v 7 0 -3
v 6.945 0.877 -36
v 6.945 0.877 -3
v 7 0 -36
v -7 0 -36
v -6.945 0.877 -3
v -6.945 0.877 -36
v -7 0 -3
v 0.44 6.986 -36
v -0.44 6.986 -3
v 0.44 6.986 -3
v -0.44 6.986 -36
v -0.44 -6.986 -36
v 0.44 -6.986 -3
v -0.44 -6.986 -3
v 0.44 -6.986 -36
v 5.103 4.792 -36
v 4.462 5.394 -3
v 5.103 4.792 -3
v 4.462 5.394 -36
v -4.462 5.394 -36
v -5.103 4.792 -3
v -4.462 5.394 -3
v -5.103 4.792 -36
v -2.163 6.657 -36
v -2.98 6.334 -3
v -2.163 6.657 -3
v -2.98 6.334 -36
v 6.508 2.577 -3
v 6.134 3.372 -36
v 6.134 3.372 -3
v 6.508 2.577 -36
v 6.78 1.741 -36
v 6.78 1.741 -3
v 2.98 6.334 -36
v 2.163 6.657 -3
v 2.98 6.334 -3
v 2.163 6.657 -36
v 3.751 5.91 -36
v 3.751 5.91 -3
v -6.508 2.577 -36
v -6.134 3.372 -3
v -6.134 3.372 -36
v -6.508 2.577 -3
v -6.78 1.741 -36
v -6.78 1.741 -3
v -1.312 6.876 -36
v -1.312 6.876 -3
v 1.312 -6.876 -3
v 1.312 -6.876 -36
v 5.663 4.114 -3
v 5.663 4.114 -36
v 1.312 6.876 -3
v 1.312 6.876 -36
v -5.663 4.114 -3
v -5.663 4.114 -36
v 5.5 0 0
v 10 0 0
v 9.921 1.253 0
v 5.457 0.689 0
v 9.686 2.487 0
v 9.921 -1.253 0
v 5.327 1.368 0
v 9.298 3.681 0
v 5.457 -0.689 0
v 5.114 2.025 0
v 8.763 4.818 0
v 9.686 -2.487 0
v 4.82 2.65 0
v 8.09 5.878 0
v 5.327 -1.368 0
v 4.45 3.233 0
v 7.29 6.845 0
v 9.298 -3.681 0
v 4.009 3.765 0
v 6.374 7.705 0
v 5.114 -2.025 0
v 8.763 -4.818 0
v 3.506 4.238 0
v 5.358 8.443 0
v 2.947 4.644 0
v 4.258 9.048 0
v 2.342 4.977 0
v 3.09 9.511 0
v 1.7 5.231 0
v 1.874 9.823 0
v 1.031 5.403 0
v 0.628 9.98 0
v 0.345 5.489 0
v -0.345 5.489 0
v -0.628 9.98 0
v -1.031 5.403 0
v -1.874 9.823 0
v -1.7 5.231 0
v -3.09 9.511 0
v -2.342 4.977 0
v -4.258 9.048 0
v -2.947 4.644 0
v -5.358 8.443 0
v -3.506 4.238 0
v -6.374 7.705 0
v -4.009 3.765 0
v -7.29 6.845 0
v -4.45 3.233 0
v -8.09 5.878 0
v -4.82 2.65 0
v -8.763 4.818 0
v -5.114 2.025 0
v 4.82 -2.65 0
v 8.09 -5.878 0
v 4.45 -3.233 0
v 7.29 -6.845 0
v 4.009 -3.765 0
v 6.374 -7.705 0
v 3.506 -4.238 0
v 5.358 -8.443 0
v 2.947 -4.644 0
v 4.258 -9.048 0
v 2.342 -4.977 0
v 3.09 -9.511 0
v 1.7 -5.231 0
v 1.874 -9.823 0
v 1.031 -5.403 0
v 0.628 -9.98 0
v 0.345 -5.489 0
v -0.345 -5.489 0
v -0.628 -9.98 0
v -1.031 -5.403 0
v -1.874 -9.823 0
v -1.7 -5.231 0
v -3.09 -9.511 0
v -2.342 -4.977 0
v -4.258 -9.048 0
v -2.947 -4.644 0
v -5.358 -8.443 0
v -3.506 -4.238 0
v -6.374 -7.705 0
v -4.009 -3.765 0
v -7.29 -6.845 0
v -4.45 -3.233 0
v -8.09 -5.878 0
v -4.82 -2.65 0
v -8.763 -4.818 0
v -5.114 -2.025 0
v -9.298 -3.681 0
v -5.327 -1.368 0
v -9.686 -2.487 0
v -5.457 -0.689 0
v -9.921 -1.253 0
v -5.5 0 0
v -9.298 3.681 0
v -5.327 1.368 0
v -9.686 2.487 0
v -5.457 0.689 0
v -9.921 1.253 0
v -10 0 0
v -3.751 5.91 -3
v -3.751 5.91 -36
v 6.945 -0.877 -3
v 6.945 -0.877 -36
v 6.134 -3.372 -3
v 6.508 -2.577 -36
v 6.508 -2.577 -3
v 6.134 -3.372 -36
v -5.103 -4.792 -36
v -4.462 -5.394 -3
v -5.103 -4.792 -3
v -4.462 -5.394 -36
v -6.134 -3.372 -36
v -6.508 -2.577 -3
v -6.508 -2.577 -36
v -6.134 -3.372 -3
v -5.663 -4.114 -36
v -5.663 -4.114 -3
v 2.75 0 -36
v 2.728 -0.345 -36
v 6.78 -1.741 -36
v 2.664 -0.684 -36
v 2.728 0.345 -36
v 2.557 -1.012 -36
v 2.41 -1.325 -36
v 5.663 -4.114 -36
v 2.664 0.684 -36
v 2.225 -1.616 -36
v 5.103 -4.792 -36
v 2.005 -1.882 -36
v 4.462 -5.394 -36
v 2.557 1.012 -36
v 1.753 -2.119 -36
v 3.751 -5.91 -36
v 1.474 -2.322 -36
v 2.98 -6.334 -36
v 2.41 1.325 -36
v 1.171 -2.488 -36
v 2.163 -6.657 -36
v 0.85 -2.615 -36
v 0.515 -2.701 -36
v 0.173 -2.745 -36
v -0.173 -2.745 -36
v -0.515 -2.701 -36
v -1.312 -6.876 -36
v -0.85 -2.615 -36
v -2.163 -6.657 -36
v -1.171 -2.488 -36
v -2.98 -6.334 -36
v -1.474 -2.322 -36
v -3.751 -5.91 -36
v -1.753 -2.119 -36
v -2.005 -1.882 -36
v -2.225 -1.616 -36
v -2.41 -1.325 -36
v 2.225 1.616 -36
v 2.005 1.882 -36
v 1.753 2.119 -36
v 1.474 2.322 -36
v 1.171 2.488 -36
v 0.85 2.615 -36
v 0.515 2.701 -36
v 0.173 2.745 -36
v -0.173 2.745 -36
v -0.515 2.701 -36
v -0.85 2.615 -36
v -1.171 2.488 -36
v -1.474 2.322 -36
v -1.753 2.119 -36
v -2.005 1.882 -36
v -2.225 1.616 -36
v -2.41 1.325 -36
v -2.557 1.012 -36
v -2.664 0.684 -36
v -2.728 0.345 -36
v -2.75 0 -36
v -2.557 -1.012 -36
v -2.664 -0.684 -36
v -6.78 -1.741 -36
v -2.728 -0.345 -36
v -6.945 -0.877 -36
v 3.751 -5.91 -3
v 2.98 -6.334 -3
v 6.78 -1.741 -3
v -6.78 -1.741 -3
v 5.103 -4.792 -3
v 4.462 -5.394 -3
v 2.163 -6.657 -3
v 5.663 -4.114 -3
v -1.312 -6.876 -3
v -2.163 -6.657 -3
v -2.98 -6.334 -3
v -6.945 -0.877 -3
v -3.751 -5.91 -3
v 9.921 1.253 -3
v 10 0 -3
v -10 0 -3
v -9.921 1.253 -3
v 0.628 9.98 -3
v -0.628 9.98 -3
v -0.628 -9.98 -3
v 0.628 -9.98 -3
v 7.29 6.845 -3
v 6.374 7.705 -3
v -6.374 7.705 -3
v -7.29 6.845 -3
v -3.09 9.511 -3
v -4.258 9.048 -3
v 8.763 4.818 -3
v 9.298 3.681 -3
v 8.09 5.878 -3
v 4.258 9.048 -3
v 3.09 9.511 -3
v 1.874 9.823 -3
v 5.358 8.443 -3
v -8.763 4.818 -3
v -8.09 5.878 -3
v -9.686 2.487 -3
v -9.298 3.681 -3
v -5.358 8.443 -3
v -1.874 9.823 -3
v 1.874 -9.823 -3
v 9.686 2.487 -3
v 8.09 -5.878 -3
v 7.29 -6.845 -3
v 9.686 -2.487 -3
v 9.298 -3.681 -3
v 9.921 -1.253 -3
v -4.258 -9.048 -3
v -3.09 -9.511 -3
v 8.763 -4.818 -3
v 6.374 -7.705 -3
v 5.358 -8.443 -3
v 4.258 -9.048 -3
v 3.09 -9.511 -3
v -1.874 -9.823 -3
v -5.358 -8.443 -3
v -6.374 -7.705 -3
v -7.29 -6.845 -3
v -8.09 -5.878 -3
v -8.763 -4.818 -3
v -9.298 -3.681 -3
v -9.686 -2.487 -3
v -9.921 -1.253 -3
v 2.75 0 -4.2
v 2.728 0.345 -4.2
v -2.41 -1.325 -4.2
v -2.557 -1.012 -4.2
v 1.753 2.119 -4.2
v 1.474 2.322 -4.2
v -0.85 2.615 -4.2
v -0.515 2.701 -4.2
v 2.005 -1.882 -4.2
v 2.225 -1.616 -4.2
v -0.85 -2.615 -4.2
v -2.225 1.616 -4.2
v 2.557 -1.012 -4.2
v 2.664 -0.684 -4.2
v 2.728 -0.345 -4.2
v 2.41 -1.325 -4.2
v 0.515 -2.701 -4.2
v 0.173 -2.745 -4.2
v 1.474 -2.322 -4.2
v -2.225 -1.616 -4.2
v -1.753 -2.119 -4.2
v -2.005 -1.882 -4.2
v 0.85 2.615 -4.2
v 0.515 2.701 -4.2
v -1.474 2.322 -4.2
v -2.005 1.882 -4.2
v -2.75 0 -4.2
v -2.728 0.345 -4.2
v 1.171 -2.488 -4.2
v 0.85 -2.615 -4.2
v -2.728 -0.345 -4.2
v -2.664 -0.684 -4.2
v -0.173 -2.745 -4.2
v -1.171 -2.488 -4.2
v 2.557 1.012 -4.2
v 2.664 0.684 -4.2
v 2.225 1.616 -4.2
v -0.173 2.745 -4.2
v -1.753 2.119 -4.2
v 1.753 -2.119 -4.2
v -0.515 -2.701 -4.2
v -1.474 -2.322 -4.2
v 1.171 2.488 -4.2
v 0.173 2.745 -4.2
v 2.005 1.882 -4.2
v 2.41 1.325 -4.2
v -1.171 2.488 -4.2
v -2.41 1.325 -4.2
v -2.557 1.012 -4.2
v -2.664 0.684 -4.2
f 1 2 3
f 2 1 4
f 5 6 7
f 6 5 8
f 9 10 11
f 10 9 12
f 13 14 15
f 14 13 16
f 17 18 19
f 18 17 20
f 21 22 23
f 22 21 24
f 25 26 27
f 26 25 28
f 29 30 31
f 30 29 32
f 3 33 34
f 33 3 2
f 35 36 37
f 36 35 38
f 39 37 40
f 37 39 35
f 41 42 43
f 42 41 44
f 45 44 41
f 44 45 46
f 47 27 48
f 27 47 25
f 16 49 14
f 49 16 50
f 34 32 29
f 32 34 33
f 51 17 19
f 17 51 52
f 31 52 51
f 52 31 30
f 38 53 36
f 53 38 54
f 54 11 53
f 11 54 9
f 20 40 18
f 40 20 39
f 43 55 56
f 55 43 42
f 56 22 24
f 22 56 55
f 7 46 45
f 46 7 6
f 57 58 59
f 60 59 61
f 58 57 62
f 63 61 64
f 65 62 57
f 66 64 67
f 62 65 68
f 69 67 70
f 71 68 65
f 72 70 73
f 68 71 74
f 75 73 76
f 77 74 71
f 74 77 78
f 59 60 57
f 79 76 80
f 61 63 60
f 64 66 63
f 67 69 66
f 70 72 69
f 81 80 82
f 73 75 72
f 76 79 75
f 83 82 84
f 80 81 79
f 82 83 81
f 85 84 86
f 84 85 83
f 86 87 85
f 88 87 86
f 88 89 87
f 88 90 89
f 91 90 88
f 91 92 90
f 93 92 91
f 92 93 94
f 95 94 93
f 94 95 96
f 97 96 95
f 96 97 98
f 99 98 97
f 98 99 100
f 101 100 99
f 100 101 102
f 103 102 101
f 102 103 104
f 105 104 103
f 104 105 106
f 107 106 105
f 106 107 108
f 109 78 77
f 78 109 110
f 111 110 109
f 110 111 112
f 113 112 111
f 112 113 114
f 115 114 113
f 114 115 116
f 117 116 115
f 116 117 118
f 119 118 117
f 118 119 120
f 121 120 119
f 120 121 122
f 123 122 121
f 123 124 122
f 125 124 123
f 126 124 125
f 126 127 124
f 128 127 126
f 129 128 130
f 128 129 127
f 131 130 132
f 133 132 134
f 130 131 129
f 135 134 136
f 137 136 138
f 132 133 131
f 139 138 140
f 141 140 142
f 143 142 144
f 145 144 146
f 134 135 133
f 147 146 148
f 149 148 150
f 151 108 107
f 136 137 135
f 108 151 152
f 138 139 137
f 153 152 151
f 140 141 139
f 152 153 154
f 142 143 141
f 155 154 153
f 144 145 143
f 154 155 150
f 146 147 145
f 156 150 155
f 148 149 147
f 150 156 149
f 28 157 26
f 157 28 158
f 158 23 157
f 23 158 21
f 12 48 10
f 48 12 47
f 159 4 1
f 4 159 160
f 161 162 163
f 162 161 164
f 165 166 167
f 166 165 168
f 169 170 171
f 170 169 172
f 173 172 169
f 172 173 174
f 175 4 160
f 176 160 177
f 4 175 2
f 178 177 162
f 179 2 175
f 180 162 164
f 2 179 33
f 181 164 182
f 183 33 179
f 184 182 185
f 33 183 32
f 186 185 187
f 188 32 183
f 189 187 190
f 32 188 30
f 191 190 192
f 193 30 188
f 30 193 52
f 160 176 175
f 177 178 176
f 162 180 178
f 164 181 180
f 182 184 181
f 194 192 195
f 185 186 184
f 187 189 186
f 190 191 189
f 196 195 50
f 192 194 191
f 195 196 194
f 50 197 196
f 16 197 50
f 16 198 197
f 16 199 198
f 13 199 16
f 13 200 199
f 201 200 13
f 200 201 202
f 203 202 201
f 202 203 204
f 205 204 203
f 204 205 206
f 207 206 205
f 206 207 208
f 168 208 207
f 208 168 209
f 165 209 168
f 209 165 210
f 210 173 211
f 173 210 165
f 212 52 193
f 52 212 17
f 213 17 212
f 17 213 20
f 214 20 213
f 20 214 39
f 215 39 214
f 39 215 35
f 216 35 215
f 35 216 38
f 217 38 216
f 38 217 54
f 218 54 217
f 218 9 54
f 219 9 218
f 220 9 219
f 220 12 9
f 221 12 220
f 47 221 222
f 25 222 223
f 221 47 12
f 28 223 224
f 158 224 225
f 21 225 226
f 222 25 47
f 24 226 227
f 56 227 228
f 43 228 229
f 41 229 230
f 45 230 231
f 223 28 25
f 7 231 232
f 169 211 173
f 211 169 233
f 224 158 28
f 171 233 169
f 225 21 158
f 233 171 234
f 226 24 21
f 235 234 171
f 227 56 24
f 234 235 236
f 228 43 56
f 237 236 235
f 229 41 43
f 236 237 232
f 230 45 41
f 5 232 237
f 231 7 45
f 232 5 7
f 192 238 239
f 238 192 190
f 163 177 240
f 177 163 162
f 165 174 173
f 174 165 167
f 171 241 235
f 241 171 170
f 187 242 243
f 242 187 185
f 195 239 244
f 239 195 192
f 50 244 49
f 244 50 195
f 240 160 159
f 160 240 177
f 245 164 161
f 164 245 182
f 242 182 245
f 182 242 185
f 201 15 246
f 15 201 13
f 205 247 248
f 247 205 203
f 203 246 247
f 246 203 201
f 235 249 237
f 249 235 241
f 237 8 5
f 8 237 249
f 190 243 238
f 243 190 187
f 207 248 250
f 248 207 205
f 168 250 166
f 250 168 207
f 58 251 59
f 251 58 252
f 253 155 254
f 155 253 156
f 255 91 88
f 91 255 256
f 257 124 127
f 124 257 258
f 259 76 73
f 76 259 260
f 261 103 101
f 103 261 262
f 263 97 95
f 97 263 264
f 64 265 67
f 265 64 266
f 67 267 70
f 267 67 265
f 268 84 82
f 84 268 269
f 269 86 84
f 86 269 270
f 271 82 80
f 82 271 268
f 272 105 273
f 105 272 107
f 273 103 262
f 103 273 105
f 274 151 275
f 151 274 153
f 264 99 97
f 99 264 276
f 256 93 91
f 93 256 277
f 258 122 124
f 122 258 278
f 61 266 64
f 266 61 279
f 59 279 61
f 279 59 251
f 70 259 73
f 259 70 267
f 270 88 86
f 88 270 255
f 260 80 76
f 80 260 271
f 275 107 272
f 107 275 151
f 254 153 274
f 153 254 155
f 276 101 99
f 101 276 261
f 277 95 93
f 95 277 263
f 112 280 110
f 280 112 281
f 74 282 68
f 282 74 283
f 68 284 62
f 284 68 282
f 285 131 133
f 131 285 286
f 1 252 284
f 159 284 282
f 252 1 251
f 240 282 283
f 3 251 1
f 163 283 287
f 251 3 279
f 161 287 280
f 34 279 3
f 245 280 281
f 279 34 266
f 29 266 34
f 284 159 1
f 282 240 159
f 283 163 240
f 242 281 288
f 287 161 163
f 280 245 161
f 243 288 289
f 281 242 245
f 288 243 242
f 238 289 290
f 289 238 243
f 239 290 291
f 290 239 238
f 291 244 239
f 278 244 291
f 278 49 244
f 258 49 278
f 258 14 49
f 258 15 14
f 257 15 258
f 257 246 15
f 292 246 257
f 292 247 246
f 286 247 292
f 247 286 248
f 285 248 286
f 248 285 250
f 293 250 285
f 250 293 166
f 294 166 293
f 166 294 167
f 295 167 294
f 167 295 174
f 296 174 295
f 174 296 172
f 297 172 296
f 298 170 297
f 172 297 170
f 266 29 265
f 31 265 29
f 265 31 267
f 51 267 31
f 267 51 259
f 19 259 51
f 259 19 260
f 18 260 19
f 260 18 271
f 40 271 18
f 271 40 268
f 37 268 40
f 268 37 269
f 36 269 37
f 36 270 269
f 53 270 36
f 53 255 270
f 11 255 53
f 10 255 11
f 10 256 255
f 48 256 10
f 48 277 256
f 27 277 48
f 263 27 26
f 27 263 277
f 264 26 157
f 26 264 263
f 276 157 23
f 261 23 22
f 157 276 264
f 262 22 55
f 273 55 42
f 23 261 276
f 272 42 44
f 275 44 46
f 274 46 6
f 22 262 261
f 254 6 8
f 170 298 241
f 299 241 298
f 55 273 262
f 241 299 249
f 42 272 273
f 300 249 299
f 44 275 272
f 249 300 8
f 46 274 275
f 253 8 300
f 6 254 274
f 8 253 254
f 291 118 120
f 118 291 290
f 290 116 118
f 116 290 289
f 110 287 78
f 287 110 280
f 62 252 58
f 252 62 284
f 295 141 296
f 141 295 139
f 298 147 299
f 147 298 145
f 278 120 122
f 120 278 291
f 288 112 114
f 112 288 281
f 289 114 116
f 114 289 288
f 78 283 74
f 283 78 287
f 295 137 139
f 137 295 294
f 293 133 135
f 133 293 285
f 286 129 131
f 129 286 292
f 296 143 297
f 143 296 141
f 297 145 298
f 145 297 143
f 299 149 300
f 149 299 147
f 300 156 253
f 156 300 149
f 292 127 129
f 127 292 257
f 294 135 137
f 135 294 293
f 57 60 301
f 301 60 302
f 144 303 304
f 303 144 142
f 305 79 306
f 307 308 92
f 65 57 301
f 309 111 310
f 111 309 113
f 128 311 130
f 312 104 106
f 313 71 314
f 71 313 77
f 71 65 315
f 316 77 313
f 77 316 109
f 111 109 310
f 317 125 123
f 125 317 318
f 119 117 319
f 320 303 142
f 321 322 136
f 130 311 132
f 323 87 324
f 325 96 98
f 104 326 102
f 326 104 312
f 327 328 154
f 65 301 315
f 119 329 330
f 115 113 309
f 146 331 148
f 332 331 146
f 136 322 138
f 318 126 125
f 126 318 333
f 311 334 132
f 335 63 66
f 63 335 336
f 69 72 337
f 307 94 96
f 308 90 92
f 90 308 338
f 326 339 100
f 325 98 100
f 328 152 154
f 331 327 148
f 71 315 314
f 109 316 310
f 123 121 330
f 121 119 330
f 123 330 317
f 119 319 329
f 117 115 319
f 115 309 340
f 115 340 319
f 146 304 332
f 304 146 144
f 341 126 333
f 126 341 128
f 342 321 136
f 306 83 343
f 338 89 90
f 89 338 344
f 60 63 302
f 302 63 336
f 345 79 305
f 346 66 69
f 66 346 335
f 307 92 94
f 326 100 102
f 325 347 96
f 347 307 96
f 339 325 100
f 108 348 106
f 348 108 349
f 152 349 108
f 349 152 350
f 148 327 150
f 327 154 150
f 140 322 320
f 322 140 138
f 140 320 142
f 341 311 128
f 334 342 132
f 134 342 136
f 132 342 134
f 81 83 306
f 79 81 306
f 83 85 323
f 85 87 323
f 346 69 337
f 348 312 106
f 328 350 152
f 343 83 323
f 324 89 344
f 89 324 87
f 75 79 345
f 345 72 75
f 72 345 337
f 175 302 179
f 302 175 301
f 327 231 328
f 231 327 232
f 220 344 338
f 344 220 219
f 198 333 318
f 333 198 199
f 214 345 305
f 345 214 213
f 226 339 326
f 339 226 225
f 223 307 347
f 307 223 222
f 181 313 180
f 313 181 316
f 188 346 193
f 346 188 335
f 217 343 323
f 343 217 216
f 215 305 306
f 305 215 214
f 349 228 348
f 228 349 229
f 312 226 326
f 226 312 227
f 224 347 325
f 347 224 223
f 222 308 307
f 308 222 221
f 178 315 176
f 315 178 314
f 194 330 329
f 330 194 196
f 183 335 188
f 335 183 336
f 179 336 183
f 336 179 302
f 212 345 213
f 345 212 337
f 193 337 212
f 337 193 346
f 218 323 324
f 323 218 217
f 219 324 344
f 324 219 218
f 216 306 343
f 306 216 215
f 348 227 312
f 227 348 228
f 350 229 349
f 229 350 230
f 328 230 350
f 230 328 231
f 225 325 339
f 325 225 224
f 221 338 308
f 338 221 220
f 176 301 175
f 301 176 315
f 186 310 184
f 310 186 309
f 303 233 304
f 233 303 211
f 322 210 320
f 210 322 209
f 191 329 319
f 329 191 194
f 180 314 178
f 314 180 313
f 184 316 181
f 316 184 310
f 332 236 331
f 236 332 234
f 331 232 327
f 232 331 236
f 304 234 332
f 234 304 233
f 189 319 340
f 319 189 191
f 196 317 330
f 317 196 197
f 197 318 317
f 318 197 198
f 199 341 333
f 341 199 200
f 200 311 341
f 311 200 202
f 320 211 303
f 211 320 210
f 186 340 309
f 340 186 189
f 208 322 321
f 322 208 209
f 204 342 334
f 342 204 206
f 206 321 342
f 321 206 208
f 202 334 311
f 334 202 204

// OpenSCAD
$fn = 50;


difference() {
	union() {
		translate(v = [0, 0, -36.0000000000]) {
			cylinder(h = 36, r = 7.0000000000);
		}
		translate(v = [0, 0, -3.0000000000]) {
			cylinder(h = 3, r = 10.0000000000);
		}
	}
	union() {
		translate(v = [0, 0, 0]) {
			rotate(a = [0, 0, 0]) {
				difference() {
					union() {
						#translate(v = [0, 0, -36.0000000000]) {
							cylinder(h = 36, r = 2.2500000000);
						}
						#translate(v = [0, 0, -4.2000000000]) {
							cylinder(h = 4.2000000000, r1 = 2.7500000000, r2 = 5.5000000000);
						}
						#translate(v = [0, 0, -36.0000000000]) {
							cylinder(h = 36, r = 2.7500000000);
						}
						#translate(v = [0, 0, -36.0000000000]) {
							cylinder(h = 36, r = 2.2500000000);
						}
					}
					union();
				}
			}
		}
	}
}
